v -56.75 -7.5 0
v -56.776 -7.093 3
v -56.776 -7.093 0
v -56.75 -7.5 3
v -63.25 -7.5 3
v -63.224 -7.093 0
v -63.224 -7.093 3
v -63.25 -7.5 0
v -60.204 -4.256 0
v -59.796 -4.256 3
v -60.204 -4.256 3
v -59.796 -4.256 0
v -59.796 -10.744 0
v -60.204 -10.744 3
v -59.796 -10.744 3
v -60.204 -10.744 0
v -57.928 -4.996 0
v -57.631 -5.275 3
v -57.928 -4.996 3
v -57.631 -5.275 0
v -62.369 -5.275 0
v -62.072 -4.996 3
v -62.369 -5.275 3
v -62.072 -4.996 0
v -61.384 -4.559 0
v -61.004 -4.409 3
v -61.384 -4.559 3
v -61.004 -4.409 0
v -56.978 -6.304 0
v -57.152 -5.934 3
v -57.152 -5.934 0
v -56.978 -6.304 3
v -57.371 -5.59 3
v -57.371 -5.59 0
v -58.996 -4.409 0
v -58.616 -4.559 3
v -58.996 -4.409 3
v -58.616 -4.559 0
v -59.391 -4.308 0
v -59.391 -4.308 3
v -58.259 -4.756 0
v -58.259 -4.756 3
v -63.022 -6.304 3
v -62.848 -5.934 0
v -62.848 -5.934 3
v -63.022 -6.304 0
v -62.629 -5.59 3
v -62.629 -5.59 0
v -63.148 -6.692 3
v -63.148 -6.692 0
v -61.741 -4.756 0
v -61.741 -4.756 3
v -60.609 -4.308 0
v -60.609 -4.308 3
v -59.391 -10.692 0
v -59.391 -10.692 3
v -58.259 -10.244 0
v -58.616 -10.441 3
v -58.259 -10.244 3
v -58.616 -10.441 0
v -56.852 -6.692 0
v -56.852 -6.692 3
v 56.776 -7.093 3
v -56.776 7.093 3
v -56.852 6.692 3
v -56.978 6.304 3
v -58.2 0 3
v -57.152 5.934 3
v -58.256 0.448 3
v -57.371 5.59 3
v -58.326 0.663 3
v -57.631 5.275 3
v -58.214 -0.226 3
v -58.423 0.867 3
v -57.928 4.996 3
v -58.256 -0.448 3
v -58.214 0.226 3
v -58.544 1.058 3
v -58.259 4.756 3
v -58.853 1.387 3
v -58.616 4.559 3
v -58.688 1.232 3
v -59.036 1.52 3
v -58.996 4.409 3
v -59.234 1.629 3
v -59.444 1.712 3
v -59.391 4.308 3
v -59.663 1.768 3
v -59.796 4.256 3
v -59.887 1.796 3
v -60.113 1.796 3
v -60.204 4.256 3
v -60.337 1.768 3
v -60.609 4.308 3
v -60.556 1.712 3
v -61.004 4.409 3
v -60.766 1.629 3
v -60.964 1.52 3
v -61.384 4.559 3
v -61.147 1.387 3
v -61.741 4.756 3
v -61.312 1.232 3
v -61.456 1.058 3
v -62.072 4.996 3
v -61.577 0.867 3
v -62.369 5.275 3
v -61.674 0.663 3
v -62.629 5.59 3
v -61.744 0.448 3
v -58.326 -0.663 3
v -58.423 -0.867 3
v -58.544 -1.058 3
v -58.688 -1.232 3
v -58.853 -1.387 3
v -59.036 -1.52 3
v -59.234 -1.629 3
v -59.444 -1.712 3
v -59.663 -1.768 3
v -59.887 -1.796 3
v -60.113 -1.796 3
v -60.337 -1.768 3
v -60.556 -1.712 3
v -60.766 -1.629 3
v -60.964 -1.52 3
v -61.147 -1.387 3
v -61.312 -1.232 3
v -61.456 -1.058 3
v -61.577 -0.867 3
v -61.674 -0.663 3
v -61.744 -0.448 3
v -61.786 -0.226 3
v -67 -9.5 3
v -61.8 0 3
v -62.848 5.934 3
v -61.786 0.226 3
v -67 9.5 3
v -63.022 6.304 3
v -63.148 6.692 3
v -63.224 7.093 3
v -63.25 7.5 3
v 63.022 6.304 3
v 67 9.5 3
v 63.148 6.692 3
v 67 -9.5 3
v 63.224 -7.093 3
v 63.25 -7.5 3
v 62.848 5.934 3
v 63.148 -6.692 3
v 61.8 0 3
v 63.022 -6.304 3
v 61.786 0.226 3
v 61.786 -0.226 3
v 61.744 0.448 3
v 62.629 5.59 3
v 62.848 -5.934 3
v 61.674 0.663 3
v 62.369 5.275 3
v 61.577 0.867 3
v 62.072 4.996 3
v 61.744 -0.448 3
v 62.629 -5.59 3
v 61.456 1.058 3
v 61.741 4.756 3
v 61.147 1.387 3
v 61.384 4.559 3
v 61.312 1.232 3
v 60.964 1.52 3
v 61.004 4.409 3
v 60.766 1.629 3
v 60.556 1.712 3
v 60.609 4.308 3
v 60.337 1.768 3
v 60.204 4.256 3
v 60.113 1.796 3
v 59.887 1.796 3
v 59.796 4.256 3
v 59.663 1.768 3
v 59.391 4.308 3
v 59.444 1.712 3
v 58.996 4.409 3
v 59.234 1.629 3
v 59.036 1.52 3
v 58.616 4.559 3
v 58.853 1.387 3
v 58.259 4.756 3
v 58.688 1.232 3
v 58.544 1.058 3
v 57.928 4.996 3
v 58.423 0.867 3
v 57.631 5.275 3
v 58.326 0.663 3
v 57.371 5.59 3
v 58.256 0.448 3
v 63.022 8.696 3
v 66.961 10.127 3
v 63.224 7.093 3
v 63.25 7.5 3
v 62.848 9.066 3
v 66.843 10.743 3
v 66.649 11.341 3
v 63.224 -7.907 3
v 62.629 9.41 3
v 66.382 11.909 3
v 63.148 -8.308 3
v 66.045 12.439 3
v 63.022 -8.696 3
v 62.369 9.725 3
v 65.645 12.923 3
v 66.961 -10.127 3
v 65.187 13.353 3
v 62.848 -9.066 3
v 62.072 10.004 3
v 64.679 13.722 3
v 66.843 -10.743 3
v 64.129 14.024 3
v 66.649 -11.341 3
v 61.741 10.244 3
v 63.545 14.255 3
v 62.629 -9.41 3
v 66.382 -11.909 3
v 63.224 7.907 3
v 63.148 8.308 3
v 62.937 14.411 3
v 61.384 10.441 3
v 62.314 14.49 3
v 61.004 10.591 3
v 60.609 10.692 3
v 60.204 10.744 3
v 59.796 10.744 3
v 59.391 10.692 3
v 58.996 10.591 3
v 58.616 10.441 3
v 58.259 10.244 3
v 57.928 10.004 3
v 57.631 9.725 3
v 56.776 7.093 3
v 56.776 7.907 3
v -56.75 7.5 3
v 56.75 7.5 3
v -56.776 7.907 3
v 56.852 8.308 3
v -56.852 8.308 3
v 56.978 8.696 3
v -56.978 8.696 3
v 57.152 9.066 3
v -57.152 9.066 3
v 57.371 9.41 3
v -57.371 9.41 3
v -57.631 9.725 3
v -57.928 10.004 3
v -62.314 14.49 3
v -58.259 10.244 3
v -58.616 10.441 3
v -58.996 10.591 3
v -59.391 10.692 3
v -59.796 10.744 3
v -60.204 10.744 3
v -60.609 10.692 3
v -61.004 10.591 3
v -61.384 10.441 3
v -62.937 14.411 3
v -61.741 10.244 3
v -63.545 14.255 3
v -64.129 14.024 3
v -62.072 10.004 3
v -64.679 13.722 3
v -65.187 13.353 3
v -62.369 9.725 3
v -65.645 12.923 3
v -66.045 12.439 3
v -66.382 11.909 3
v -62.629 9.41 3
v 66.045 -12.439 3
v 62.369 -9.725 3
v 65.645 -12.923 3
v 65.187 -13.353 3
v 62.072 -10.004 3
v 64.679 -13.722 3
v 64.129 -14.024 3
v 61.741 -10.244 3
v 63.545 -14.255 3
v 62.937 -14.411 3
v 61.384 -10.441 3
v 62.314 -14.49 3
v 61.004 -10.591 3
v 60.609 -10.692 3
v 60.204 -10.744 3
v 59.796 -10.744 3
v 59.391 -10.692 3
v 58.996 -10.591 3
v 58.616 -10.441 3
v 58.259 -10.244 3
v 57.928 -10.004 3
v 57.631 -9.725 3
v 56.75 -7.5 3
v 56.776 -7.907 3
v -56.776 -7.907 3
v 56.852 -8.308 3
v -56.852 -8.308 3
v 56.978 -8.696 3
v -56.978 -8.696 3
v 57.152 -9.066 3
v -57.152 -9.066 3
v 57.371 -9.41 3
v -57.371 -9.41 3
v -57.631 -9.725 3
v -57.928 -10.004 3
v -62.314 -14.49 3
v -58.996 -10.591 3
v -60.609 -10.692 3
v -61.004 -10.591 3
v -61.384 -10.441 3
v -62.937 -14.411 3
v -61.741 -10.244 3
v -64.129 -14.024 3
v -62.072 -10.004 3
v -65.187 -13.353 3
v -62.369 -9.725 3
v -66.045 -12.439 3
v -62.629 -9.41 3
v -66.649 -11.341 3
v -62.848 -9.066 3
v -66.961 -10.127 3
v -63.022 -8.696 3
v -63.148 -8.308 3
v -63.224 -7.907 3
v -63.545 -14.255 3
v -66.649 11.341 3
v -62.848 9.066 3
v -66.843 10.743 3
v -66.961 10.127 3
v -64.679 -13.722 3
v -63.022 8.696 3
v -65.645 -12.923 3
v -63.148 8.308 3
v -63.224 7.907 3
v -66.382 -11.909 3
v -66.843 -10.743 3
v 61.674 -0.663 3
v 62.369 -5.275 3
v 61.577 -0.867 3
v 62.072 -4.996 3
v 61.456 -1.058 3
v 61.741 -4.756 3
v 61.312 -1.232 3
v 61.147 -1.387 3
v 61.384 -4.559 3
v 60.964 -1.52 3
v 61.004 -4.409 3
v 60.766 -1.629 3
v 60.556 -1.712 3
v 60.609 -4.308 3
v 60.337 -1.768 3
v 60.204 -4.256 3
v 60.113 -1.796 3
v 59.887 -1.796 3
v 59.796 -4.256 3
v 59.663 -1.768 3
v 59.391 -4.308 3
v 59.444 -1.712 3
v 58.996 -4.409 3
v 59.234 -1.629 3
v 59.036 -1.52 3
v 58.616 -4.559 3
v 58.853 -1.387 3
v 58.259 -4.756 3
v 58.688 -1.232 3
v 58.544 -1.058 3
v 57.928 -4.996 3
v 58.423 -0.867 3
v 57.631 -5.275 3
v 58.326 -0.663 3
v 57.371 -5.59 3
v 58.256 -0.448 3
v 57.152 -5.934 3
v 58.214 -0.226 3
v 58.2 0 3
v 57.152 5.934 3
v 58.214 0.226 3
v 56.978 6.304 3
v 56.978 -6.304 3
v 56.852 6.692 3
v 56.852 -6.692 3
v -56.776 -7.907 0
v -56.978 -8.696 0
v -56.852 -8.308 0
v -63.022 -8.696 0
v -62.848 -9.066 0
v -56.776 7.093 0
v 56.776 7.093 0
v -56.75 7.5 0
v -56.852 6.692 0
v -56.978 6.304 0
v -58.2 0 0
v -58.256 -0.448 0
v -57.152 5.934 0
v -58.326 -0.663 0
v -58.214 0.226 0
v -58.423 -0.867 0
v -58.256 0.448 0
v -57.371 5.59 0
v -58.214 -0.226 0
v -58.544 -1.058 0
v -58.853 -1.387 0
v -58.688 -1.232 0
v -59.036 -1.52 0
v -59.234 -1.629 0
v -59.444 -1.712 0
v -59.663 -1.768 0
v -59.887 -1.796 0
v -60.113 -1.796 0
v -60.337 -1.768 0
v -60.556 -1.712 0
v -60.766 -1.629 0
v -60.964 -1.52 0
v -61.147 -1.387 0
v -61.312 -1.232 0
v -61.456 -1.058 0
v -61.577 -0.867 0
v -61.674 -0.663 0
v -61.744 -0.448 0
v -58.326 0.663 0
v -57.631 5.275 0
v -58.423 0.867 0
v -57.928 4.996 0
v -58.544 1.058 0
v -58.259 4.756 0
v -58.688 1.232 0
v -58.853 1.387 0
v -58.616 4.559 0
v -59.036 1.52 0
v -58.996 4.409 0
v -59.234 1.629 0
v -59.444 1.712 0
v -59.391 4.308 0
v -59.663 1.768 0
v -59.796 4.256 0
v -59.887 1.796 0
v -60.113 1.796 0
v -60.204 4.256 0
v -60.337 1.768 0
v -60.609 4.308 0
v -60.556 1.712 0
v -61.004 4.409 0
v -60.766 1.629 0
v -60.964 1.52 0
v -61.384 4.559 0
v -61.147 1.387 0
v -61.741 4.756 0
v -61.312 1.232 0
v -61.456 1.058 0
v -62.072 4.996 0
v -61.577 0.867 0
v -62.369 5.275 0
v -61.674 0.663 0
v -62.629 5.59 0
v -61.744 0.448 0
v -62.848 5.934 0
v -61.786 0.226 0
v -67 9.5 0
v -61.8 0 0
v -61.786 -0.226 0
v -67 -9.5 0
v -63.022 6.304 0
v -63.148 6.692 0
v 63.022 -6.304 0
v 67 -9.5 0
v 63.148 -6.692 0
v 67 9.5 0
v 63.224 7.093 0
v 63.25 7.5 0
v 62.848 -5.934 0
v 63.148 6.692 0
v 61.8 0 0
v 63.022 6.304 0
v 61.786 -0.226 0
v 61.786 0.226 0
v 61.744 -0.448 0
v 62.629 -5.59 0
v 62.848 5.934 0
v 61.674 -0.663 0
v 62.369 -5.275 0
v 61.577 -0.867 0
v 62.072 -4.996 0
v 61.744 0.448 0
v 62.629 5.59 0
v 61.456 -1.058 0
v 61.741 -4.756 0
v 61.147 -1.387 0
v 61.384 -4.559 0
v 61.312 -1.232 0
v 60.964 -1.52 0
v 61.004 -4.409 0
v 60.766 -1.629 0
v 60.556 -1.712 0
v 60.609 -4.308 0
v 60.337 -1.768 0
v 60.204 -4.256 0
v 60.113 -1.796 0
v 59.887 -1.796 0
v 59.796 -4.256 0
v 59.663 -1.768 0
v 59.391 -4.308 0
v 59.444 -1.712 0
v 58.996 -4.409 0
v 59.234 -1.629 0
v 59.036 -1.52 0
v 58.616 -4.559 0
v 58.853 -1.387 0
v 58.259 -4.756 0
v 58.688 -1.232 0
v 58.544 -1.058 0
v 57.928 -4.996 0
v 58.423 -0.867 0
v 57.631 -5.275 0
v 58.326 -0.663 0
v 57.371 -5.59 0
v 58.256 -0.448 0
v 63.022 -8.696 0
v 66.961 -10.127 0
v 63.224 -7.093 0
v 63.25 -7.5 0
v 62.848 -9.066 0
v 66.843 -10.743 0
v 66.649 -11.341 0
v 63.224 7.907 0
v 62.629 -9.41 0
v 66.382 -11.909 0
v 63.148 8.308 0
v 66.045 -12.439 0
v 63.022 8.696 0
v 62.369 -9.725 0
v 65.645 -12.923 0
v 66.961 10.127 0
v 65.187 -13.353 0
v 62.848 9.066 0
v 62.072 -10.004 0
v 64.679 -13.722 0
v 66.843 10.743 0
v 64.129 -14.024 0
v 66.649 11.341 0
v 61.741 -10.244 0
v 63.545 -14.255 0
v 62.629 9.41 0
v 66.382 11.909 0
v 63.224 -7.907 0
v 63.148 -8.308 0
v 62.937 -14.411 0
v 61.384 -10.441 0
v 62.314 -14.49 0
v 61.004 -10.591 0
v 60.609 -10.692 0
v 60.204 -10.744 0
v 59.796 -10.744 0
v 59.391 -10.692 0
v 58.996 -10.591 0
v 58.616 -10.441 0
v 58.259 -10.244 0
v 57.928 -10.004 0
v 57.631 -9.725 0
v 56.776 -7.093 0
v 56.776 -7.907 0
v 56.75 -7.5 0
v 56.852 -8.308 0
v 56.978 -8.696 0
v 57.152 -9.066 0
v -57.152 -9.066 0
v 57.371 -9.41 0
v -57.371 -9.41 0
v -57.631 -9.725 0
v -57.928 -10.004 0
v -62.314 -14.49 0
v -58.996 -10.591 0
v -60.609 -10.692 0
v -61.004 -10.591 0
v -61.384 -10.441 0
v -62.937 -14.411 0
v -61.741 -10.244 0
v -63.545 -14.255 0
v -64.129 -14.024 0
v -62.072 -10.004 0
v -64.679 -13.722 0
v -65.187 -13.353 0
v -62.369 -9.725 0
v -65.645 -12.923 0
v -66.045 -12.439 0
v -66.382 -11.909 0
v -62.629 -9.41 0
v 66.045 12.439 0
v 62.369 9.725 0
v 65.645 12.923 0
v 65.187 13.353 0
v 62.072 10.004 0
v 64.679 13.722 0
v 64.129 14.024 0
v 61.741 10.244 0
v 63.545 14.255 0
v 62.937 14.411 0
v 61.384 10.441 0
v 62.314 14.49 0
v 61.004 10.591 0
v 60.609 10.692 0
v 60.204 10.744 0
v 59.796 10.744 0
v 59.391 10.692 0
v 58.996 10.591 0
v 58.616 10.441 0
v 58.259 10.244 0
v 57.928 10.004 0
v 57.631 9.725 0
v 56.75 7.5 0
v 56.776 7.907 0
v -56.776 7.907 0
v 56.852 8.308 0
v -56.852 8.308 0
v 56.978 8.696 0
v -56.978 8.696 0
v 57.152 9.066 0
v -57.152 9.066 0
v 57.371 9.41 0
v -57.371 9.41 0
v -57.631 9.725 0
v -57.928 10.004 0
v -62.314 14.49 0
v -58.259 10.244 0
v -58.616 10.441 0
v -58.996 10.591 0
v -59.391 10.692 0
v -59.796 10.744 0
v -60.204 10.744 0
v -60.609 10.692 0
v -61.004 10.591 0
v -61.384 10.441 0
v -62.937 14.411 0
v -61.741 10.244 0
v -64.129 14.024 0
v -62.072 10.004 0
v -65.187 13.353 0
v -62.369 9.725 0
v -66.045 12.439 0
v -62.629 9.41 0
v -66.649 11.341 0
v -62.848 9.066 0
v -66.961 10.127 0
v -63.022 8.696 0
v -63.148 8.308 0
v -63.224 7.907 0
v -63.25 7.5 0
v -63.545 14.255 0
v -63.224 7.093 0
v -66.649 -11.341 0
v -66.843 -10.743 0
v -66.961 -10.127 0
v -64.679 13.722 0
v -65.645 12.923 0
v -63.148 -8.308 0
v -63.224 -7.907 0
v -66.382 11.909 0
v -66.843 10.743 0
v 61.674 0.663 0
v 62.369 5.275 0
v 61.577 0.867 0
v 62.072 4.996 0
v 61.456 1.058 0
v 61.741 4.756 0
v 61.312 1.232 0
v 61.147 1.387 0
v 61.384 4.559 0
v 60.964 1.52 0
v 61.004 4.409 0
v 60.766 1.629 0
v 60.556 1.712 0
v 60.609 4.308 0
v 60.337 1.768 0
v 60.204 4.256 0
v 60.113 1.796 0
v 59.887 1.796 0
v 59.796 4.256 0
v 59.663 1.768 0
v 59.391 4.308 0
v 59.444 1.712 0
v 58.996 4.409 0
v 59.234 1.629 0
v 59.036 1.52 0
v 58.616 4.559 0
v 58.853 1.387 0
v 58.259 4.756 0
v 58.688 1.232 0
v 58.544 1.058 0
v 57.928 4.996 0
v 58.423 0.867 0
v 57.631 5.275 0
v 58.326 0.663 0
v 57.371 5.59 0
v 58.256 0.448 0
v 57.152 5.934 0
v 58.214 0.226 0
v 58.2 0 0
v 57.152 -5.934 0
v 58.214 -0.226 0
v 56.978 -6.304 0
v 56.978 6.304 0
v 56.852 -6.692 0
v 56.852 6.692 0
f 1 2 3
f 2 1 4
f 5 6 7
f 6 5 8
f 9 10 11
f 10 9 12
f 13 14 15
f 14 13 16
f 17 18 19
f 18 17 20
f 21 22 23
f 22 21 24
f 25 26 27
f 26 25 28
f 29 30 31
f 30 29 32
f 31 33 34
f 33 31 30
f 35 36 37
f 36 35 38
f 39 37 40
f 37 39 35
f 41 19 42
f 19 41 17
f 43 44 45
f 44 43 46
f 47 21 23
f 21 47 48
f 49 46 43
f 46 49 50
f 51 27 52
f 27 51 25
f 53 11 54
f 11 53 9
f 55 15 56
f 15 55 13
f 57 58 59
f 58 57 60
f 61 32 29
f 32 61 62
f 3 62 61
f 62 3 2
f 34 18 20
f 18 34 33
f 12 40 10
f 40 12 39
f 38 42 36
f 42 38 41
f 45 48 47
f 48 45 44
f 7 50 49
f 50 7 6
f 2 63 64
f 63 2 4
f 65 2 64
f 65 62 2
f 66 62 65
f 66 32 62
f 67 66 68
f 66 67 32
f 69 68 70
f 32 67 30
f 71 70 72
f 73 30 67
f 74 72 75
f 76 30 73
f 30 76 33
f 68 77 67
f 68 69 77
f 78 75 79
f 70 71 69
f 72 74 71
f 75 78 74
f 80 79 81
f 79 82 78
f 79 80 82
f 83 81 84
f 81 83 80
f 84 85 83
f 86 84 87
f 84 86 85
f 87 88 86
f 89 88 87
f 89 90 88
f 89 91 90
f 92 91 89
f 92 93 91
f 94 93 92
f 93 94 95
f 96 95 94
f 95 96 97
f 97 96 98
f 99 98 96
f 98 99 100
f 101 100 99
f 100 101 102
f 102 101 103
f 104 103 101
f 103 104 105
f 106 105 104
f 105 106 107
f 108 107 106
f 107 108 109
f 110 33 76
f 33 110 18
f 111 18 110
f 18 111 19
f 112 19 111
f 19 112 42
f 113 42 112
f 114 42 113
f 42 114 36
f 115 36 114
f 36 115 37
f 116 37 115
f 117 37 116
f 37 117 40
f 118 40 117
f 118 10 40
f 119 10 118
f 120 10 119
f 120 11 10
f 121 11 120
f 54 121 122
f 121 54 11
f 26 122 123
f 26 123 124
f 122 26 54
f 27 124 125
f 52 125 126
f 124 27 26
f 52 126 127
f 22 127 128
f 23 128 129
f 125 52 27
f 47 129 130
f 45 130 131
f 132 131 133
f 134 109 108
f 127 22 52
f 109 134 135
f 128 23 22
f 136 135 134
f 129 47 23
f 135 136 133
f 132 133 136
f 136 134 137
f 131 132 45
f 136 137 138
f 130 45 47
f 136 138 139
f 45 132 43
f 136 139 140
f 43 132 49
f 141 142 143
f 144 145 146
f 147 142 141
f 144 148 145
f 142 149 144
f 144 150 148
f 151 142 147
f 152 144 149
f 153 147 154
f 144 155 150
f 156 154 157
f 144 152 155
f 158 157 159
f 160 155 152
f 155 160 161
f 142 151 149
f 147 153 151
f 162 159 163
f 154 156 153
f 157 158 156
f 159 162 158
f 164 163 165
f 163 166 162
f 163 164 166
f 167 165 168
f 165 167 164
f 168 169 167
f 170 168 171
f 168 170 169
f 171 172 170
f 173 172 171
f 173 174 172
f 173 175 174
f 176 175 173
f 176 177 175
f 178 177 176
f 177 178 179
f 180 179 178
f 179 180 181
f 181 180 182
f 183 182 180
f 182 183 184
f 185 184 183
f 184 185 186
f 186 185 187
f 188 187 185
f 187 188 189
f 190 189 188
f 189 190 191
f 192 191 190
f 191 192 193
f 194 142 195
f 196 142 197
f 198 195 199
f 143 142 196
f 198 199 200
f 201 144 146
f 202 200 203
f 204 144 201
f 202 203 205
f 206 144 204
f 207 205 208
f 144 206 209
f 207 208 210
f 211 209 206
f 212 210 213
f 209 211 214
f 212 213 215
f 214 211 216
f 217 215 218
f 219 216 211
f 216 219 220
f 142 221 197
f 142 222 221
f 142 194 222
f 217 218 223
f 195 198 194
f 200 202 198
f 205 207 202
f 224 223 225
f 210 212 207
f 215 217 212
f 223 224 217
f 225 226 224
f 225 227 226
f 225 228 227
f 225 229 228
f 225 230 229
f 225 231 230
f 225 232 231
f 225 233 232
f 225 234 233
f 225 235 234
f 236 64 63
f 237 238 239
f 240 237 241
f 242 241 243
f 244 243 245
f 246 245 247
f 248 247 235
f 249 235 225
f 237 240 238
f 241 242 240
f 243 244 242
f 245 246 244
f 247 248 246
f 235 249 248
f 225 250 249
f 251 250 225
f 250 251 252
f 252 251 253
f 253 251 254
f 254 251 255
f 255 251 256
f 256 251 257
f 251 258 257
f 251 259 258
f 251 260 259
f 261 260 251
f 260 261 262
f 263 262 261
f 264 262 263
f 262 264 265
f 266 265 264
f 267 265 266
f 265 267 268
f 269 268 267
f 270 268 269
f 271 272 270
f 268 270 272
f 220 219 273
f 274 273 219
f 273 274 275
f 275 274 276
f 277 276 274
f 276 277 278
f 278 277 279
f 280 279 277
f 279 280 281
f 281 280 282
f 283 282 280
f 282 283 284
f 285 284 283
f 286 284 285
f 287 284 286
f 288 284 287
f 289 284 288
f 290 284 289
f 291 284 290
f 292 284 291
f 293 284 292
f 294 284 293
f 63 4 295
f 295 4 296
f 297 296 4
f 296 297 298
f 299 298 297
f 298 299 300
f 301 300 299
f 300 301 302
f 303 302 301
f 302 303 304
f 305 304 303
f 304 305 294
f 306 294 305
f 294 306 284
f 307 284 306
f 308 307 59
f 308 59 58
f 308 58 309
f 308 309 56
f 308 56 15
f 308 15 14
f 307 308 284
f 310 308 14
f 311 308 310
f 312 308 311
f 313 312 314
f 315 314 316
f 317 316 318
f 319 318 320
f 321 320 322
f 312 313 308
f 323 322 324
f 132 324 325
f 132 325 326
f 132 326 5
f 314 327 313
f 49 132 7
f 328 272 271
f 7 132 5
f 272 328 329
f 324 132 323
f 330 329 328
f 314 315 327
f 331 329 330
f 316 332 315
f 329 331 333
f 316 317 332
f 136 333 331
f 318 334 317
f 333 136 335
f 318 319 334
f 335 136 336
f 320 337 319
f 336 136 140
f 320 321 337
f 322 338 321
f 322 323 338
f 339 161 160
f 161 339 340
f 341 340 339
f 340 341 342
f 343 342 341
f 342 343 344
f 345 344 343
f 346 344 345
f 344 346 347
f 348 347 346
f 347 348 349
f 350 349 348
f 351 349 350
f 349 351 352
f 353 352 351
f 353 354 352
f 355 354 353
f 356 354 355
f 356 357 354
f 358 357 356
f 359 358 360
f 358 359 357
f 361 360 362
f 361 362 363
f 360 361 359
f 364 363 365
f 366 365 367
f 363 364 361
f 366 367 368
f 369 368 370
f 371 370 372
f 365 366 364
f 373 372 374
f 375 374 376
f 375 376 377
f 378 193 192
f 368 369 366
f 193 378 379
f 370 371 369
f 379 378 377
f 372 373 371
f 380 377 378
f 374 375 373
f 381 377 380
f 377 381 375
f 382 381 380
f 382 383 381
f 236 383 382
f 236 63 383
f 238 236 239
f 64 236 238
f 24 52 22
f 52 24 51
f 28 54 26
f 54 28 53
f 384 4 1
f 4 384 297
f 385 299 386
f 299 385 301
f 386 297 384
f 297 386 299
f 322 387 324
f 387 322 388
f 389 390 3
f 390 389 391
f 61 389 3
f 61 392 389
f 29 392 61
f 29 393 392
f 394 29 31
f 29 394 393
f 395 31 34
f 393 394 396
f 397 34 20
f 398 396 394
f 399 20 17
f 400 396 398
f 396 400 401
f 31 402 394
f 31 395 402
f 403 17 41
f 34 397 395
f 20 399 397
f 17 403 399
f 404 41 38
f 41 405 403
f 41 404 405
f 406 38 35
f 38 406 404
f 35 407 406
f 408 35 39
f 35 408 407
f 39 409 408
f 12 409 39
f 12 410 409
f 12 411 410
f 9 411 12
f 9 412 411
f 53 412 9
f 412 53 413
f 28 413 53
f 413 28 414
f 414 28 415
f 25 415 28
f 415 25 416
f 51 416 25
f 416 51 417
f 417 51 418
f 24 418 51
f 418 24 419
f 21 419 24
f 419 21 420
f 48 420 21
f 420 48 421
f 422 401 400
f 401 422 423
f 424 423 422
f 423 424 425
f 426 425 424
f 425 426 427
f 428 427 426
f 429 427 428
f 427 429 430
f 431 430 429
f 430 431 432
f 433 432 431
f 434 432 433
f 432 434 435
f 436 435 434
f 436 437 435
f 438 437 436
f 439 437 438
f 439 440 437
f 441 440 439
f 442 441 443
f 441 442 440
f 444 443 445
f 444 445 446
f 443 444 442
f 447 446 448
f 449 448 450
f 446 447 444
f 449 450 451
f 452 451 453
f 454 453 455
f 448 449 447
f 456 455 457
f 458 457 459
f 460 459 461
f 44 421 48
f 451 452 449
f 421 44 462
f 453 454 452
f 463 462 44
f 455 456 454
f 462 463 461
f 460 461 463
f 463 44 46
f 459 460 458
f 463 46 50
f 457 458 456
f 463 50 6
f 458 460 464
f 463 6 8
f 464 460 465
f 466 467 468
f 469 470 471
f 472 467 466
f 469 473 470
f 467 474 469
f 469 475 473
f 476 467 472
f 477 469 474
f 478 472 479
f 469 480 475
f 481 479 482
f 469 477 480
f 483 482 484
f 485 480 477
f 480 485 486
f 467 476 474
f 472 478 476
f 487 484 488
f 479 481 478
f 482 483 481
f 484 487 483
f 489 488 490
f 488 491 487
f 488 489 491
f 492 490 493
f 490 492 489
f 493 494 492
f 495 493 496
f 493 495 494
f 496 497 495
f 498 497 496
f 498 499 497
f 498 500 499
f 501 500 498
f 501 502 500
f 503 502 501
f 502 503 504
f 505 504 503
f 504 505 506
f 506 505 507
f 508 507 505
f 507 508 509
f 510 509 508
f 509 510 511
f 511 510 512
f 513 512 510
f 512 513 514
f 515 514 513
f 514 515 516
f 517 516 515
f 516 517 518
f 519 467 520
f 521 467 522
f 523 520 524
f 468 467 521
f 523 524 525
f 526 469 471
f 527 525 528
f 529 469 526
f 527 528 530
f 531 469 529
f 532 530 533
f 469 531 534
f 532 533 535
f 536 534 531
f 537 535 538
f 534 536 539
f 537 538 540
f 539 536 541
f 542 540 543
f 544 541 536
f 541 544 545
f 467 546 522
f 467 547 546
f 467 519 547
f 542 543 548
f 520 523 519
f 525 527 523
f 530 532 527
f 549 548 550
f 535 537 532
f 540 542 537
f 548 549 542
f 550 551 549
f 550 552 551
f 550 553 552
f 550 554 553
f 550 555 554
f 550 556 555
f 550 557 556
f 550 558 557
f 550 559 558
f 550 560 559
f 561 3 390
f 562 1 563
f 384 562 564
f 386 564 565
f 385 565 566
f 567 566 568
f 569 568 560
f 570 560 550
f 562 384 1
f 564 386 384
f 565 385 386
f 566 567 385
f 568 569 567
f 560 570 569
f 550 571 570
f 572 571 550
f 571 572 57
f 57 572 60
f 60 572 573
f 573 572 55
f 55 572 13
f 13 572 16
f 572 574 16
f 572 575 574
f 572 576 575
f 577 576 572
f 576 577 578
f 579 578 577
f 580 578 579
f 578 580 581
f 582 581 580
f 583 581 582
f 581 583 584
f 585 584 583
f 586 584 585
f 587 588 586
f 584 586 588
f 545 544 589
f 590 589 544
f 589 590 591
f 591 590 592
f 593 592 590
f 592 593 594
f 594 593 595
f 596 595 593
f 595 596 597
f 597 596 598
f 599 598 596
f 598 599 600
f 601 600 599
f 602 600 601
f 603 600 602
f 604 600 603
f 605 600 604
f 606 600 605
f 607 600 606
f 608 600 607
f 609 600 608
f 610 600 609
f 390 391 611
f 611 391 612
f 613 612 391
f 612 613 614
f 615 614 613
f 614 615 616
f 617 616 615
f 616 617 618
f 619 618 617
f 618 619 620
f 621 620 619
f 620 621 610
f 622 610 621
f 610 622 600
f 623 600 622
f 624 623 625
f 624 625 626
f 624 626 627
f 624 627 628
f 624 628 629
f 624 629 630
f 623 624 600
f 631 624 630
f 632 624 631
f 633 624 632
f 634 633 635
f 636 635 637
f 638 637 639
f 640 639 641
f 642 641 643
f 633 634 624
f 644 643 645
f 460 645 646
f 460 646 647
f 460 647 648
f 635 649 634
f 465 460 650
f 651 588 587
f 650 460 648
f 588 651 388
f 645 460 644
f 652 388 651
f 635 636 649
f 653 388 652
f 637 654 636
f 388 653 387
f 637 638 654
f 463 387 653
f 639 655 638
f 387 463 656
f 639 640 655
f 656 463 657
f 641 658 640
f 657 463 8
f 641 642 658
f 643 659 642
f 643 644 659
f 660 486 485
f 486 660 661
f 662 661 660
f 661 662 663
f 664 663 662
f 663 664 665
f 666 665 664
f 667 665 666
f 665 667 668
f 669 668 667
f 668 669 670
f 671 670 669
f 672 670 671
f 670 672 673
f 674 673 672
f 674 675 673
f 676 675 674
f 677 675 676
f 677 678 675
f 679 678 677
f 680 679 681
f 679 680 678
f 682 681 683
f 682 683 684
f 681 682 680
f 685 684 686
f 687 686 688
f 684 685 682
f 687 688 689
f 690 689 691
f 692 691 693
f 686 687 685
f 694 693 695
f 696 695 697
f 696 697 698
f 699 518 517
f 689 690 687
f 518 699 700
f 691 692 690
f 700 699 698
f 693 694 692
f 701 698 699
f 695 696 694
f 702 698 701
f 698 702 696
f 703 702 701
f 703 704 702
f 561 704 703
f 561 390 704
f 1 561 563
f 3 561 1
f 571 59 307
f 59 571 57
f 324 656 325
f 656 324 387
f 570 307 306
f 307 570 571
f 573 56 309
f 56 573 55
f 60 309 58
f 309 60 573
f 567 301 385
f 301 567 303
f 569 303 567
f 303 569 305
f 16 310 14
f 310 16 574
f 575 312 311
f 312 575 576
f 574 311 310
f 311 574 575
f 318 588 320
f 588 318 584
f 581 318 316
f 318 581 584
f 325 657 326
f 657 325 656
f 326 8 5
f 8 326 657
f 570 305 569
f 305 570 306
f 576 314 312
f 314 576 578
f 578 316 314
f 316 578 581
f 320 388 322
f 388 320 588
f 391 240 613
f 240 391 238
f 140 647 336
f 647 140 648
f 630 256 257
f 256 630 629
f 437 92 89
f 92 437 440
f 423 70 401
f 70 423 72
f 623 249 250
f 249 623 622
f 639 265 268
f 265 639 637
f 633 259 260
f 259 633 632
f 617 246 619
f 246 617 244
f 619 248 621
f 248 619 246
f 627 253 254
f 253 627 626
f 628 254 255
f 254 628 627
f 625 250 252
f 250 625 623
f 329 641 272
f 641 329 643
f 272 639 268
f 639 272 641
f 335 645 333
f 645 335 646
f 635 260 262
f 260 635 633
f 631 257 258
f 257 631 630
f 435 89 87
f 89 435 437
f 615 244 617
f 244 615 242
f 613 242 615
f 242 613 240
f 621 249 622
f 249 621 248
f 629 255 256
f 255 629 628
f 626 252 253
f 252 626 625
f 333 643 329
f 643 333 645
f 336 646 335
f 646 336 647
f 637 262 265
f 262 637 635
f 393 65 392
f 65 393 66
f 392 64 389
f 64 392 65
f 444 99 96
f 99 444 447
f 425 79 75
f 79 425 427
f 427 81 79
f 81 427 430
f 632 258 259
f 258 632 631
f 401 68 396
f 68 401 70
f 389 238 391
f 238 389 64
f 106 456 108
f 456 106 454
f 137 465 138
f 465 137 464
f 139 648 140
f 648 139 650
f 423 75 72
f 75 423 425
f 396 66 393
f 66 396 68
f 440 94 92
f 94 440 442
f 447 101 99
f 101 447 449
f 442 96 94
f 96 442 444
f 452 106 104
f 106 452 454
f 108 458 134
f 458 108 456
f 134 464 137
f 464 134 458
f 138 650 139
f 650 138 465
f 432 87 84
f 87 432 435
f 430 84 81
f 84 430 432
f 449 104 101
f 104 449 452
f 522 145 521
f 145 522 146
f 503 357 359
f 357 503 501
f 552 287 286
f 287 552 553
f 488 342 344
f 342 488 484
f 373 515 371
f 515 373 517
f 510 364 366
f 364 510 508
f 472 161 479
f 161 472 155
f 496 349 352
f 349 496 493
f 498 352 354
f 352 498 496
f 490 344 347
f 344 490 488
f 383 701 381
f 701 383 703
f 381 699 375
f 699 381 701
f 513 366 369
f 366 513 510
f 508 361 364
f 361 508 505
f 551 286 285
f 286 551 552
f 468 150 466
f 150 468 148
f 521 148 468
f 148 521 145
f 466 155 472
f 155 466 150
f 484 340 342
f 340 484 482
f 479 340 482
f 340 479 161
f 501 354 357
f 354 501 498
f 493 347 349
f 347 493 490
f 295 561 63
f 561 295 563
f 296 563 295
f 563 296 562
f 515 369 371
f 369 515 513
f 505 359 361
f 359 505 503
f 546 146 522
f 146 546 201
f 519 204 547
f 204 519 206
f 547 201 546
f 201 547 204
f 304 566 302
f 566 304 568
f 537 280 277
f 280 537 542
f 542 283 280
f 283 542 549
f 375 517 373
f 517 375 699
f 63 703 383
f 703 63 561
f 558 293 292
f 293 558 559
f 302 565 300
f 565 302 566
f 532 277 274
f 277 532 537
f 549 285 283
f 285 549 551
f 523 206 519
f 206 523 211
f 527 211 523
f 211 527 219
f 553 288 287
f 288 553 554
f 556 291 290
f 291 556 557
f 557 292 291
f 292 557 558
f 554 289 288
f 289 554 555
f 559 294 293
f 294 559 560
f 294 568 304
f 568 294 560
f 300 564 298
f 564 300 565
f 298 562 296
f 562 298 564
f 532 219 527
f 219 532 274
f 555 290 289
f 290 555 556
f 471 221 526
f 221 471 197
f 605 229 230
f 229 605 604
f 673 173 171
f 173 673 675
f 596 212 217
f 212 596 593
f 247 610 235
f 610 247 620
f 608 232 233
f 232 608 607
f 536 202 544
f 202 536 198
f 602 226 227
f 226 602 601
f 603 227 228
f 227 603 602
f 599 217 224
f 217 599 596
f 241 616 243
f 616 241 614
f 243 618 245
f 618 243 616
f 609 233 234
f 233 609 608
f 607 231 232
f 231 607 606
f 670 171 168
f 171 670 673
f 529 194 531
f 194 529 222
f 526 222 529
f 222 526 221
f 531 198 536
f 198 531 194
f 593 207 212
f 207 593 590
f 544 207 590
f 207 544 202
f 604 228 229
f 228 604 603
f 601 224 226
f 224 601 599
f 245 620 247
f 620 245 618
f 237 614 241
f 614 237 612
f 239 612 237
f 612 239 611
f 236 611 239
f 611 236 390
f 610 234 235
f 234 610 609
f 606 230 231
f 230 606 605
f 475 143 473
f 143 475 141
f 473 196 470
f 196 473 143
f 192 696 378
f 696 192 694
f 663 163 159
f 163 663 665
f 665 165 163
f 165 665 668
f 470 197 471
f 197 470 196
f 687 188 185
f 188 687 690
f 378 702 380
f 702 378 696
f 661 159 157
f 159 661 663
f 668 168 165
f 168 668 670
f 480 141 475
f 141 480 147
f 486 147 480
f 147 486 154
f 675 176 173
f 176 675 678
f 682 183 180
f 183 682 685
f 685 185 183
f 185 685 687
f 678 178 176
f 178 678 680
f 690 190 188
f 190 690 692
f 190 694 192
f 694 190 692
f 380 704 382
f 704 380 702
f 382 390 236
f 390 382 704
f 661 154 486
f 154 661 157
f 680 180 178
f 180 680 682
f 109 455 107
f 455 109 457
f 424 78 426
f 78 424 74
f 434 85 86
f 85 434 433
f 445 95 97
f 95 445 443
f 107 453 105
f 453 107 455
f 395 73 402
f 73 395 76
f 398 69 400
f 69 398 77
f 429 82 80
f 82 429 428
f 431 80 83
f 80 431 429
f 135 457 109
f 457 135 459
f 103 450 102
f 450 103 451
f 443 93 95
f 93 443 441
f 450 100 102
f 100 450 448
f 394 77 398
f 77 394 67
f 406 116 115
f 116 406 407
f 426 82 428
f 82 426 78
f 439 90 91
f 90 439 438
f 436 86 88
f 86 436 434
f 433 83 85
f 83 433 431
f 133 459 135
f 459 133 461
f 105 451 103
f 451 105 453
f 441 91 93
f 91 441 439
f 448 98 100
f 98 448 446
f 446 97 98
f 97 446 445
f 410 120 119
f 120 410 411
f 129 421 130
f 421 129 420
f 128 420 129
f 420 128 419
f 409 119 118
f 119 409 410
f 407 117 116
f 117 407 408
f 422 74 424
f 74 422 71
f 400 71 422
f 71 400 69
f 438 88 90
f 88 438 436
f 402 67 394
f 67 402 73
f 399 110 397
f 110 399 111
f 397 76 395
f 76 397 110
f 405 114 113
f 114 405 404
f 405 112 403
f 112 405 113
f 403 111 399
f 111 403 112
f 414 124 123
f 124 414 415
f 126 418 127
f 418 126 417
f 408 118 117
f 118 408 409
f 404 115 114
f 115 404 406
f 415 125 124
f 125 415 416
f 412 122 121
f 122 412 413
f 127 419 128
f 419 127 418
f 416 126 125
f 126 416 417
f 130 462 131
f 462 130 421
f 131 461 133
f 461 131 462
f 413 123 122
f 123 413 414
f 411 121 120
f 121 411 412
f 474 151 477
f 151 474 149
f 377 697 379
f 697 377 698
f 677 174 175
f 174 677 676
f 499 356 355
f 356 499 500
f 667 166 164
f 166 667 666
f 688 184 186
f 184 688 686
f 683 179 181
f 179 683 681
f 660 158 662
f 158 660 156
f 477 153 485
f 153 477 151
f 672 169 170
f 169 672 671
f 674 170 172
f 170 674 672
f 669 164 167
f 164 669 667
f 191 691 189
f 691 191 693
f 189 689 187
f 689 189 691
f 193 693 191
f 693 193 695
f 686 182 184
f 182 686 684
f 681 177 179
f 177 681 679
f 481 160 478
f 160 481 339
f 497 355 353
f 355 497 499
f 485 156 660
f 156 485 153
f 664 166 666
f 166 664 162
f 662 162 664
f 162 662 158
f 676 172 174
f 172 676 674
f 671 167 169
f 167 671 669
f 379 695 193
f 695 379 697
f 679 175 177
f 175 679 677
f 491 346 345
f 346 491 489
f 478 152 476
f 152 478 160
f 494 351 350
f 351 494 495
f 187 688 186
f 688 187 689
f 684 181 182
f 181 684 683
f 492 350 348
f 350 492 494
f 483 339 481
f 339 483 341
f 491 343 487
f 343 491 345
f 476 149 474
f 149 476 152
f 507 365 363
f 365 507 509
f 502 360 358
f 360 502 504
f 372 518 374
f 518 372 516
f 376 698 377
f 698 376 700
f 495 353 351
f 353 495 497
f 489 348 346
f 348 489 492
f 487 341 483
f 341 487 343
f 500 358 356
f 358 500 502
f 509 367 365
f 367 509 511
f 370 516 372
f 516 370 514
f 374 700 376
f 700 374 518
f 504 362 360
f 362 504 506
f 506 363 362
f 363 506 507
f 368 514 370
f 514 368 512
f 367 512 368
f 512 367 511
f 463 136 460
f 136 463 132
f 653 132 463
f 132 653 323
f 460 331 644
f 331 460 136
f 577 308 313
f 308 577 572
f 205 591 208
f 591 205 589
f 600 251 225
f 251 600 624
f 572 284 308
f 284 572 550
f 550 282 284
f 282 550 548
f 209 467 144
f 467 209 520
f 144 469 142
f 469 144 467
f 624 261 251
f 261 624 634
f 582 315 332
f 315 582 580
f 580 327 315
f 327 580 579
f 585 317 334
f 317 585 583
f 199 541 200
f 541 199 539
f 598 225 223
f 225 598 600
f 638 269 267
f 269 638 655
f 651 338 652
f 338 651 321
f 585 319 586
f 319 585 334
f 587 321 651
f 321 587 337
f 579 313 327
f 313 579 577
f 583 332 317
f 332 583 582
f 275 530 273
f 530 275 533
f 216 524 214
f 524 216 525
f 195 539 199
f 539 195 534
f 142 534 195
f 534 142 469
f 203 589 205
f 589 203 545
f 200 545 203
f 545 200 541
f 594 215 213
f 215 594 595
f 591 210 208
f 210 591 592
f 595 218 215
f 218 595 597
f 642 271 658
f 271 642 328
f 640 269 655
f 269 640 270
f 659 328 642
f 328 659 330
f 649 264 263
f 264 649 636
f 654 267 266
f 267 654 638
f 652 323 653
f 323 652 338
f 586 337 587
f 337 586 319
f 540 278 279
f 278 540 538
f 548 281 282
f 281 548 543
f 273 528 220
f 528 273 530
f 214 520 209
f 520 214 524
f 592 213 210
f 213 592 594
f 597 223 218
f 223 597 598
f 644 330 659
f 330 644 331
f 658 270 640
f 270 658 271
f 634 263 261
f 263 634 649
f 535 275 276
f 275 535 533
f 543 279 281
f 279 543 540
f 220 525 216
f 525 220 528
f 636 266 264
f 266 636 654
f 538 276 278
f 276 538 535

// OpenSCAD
$fn = 50;


difference() {
	union() {
		hull() {
			translate(v = [-62.0000000000, 9.5000000000, 0]) {
				cylinder(h = 3, r = 5);
			}
			translate(v = [62.0000000000, 9.5000000000, 0]) {
				cylinder(h = 3, r = 5);
			}
			translate(v = [-62.0000000000, -9.5000000000, 0]) {
				cylinder(h = 3, r = 5);
			}
			translate(v = [62.0000000000, -9.5000000000, 0]) {
				cylinder(h = 3, r = 5);
			}
		}
	}
	union() {
		translate(v = [-60.0000000000, -7.5000000000, 0]) {
			cylinder(h = 3, r = 3.2500000000);
		}
		translate(v = [-60.0000000000, 7.5000000000, 0]) {
			cylinder(h = 3, r = 3.2500000000);
		}
		translate(v = [60.0000000000, -7.5000000000, 0]) {
			cylinder(h = 3, r = 3.2500000000);
		}
		translate(v = [60.0000000000, 7.5000000000, 0]) {
			cylinder(h = 3, r = 3.2500000000);
		}
		translate(v = [-60.0000000000, -7.5000000000, 0]) {
			cylinder(h = 3, r = 1.8000000000);
		}
		translate(v = [-60.0000000000, 0.0000000000, 0]) {
			cylinder(h = 3, r = 1.8000000000);
		}
		translate(v = [-60.0000000000, 7.5000000000, 0]) {
			cylinder(h = 3, r = 1.8000000000);
		}
		translate(v = [60.0000000000, -7.5000000000, 0]) {
			cylinder(h = 3, r = 1.8000000000);
		}
		translate(v = [60.0000000000, 0.0000000000, 0]) {
			cylinder(h = 3, r = 1.8000000000);
		}
		translate(v = [60.0000000000, 7.5000000000, 0]) {
			cylinder(h = 3, r = 1.8000000000);
		}
		translate(v = [-60.0000000000, -7.5000000000, 0]) {
			cylinder(h = 3, r = 1.8000000000);
		}
		translate(v = [-60.0000000000, 0.0000000000, 0]) {
			cylinder(h = 3, r = 1.8000000000);
		}
		translate(v = [-60.0000000000, 7.5000000000, 0]) {
			cylinder(h = 3, r = 1.8000000000);
		}
		translate(v = [60.0000000000, -7.5000000000, 0]) {
			cylinder(h = 3, r = 1.8000000000);
		}
		translate(v = [60.0000000000, 0.0000000000, 0]) {
			cylinder(h = 3, r = 1.8000000000);
		}
		translate(v = [60.0000000000, 7.5000000000, 0]) {
			cylinder(h = 3, r = 1.8000000000);
		}
		translate(v = [-60.0000000000, -7.5000000000, 0]) {
			cylinder(h = 3, r = 1.8000000000);
		}
		translate(v = [-60.0000000000, 0.0000000000, 0]) {
			cylinder(h = 3, r = 1.8000000000);
		}
		translate(v = [-60.0000000000, 7.5000000000, 0]) {
			cylinder(h = 3, r = 1.8000000000);
		}
		translate(v = [60.0000000000, -7.5000000000, 0]) {
			cylinder(h = 3, r = 1.8000000000);
		}
		translate(v = [60.0000000000, 0.0000000000, 0]) {
			cylinder(h = 3, r = 1.8000000000);
		}
		translate(v = [60.0000000000, 7.5000000000, 0]) {
			cylinder(h = 3, r = 1.8000000000);
		}
	}
}
